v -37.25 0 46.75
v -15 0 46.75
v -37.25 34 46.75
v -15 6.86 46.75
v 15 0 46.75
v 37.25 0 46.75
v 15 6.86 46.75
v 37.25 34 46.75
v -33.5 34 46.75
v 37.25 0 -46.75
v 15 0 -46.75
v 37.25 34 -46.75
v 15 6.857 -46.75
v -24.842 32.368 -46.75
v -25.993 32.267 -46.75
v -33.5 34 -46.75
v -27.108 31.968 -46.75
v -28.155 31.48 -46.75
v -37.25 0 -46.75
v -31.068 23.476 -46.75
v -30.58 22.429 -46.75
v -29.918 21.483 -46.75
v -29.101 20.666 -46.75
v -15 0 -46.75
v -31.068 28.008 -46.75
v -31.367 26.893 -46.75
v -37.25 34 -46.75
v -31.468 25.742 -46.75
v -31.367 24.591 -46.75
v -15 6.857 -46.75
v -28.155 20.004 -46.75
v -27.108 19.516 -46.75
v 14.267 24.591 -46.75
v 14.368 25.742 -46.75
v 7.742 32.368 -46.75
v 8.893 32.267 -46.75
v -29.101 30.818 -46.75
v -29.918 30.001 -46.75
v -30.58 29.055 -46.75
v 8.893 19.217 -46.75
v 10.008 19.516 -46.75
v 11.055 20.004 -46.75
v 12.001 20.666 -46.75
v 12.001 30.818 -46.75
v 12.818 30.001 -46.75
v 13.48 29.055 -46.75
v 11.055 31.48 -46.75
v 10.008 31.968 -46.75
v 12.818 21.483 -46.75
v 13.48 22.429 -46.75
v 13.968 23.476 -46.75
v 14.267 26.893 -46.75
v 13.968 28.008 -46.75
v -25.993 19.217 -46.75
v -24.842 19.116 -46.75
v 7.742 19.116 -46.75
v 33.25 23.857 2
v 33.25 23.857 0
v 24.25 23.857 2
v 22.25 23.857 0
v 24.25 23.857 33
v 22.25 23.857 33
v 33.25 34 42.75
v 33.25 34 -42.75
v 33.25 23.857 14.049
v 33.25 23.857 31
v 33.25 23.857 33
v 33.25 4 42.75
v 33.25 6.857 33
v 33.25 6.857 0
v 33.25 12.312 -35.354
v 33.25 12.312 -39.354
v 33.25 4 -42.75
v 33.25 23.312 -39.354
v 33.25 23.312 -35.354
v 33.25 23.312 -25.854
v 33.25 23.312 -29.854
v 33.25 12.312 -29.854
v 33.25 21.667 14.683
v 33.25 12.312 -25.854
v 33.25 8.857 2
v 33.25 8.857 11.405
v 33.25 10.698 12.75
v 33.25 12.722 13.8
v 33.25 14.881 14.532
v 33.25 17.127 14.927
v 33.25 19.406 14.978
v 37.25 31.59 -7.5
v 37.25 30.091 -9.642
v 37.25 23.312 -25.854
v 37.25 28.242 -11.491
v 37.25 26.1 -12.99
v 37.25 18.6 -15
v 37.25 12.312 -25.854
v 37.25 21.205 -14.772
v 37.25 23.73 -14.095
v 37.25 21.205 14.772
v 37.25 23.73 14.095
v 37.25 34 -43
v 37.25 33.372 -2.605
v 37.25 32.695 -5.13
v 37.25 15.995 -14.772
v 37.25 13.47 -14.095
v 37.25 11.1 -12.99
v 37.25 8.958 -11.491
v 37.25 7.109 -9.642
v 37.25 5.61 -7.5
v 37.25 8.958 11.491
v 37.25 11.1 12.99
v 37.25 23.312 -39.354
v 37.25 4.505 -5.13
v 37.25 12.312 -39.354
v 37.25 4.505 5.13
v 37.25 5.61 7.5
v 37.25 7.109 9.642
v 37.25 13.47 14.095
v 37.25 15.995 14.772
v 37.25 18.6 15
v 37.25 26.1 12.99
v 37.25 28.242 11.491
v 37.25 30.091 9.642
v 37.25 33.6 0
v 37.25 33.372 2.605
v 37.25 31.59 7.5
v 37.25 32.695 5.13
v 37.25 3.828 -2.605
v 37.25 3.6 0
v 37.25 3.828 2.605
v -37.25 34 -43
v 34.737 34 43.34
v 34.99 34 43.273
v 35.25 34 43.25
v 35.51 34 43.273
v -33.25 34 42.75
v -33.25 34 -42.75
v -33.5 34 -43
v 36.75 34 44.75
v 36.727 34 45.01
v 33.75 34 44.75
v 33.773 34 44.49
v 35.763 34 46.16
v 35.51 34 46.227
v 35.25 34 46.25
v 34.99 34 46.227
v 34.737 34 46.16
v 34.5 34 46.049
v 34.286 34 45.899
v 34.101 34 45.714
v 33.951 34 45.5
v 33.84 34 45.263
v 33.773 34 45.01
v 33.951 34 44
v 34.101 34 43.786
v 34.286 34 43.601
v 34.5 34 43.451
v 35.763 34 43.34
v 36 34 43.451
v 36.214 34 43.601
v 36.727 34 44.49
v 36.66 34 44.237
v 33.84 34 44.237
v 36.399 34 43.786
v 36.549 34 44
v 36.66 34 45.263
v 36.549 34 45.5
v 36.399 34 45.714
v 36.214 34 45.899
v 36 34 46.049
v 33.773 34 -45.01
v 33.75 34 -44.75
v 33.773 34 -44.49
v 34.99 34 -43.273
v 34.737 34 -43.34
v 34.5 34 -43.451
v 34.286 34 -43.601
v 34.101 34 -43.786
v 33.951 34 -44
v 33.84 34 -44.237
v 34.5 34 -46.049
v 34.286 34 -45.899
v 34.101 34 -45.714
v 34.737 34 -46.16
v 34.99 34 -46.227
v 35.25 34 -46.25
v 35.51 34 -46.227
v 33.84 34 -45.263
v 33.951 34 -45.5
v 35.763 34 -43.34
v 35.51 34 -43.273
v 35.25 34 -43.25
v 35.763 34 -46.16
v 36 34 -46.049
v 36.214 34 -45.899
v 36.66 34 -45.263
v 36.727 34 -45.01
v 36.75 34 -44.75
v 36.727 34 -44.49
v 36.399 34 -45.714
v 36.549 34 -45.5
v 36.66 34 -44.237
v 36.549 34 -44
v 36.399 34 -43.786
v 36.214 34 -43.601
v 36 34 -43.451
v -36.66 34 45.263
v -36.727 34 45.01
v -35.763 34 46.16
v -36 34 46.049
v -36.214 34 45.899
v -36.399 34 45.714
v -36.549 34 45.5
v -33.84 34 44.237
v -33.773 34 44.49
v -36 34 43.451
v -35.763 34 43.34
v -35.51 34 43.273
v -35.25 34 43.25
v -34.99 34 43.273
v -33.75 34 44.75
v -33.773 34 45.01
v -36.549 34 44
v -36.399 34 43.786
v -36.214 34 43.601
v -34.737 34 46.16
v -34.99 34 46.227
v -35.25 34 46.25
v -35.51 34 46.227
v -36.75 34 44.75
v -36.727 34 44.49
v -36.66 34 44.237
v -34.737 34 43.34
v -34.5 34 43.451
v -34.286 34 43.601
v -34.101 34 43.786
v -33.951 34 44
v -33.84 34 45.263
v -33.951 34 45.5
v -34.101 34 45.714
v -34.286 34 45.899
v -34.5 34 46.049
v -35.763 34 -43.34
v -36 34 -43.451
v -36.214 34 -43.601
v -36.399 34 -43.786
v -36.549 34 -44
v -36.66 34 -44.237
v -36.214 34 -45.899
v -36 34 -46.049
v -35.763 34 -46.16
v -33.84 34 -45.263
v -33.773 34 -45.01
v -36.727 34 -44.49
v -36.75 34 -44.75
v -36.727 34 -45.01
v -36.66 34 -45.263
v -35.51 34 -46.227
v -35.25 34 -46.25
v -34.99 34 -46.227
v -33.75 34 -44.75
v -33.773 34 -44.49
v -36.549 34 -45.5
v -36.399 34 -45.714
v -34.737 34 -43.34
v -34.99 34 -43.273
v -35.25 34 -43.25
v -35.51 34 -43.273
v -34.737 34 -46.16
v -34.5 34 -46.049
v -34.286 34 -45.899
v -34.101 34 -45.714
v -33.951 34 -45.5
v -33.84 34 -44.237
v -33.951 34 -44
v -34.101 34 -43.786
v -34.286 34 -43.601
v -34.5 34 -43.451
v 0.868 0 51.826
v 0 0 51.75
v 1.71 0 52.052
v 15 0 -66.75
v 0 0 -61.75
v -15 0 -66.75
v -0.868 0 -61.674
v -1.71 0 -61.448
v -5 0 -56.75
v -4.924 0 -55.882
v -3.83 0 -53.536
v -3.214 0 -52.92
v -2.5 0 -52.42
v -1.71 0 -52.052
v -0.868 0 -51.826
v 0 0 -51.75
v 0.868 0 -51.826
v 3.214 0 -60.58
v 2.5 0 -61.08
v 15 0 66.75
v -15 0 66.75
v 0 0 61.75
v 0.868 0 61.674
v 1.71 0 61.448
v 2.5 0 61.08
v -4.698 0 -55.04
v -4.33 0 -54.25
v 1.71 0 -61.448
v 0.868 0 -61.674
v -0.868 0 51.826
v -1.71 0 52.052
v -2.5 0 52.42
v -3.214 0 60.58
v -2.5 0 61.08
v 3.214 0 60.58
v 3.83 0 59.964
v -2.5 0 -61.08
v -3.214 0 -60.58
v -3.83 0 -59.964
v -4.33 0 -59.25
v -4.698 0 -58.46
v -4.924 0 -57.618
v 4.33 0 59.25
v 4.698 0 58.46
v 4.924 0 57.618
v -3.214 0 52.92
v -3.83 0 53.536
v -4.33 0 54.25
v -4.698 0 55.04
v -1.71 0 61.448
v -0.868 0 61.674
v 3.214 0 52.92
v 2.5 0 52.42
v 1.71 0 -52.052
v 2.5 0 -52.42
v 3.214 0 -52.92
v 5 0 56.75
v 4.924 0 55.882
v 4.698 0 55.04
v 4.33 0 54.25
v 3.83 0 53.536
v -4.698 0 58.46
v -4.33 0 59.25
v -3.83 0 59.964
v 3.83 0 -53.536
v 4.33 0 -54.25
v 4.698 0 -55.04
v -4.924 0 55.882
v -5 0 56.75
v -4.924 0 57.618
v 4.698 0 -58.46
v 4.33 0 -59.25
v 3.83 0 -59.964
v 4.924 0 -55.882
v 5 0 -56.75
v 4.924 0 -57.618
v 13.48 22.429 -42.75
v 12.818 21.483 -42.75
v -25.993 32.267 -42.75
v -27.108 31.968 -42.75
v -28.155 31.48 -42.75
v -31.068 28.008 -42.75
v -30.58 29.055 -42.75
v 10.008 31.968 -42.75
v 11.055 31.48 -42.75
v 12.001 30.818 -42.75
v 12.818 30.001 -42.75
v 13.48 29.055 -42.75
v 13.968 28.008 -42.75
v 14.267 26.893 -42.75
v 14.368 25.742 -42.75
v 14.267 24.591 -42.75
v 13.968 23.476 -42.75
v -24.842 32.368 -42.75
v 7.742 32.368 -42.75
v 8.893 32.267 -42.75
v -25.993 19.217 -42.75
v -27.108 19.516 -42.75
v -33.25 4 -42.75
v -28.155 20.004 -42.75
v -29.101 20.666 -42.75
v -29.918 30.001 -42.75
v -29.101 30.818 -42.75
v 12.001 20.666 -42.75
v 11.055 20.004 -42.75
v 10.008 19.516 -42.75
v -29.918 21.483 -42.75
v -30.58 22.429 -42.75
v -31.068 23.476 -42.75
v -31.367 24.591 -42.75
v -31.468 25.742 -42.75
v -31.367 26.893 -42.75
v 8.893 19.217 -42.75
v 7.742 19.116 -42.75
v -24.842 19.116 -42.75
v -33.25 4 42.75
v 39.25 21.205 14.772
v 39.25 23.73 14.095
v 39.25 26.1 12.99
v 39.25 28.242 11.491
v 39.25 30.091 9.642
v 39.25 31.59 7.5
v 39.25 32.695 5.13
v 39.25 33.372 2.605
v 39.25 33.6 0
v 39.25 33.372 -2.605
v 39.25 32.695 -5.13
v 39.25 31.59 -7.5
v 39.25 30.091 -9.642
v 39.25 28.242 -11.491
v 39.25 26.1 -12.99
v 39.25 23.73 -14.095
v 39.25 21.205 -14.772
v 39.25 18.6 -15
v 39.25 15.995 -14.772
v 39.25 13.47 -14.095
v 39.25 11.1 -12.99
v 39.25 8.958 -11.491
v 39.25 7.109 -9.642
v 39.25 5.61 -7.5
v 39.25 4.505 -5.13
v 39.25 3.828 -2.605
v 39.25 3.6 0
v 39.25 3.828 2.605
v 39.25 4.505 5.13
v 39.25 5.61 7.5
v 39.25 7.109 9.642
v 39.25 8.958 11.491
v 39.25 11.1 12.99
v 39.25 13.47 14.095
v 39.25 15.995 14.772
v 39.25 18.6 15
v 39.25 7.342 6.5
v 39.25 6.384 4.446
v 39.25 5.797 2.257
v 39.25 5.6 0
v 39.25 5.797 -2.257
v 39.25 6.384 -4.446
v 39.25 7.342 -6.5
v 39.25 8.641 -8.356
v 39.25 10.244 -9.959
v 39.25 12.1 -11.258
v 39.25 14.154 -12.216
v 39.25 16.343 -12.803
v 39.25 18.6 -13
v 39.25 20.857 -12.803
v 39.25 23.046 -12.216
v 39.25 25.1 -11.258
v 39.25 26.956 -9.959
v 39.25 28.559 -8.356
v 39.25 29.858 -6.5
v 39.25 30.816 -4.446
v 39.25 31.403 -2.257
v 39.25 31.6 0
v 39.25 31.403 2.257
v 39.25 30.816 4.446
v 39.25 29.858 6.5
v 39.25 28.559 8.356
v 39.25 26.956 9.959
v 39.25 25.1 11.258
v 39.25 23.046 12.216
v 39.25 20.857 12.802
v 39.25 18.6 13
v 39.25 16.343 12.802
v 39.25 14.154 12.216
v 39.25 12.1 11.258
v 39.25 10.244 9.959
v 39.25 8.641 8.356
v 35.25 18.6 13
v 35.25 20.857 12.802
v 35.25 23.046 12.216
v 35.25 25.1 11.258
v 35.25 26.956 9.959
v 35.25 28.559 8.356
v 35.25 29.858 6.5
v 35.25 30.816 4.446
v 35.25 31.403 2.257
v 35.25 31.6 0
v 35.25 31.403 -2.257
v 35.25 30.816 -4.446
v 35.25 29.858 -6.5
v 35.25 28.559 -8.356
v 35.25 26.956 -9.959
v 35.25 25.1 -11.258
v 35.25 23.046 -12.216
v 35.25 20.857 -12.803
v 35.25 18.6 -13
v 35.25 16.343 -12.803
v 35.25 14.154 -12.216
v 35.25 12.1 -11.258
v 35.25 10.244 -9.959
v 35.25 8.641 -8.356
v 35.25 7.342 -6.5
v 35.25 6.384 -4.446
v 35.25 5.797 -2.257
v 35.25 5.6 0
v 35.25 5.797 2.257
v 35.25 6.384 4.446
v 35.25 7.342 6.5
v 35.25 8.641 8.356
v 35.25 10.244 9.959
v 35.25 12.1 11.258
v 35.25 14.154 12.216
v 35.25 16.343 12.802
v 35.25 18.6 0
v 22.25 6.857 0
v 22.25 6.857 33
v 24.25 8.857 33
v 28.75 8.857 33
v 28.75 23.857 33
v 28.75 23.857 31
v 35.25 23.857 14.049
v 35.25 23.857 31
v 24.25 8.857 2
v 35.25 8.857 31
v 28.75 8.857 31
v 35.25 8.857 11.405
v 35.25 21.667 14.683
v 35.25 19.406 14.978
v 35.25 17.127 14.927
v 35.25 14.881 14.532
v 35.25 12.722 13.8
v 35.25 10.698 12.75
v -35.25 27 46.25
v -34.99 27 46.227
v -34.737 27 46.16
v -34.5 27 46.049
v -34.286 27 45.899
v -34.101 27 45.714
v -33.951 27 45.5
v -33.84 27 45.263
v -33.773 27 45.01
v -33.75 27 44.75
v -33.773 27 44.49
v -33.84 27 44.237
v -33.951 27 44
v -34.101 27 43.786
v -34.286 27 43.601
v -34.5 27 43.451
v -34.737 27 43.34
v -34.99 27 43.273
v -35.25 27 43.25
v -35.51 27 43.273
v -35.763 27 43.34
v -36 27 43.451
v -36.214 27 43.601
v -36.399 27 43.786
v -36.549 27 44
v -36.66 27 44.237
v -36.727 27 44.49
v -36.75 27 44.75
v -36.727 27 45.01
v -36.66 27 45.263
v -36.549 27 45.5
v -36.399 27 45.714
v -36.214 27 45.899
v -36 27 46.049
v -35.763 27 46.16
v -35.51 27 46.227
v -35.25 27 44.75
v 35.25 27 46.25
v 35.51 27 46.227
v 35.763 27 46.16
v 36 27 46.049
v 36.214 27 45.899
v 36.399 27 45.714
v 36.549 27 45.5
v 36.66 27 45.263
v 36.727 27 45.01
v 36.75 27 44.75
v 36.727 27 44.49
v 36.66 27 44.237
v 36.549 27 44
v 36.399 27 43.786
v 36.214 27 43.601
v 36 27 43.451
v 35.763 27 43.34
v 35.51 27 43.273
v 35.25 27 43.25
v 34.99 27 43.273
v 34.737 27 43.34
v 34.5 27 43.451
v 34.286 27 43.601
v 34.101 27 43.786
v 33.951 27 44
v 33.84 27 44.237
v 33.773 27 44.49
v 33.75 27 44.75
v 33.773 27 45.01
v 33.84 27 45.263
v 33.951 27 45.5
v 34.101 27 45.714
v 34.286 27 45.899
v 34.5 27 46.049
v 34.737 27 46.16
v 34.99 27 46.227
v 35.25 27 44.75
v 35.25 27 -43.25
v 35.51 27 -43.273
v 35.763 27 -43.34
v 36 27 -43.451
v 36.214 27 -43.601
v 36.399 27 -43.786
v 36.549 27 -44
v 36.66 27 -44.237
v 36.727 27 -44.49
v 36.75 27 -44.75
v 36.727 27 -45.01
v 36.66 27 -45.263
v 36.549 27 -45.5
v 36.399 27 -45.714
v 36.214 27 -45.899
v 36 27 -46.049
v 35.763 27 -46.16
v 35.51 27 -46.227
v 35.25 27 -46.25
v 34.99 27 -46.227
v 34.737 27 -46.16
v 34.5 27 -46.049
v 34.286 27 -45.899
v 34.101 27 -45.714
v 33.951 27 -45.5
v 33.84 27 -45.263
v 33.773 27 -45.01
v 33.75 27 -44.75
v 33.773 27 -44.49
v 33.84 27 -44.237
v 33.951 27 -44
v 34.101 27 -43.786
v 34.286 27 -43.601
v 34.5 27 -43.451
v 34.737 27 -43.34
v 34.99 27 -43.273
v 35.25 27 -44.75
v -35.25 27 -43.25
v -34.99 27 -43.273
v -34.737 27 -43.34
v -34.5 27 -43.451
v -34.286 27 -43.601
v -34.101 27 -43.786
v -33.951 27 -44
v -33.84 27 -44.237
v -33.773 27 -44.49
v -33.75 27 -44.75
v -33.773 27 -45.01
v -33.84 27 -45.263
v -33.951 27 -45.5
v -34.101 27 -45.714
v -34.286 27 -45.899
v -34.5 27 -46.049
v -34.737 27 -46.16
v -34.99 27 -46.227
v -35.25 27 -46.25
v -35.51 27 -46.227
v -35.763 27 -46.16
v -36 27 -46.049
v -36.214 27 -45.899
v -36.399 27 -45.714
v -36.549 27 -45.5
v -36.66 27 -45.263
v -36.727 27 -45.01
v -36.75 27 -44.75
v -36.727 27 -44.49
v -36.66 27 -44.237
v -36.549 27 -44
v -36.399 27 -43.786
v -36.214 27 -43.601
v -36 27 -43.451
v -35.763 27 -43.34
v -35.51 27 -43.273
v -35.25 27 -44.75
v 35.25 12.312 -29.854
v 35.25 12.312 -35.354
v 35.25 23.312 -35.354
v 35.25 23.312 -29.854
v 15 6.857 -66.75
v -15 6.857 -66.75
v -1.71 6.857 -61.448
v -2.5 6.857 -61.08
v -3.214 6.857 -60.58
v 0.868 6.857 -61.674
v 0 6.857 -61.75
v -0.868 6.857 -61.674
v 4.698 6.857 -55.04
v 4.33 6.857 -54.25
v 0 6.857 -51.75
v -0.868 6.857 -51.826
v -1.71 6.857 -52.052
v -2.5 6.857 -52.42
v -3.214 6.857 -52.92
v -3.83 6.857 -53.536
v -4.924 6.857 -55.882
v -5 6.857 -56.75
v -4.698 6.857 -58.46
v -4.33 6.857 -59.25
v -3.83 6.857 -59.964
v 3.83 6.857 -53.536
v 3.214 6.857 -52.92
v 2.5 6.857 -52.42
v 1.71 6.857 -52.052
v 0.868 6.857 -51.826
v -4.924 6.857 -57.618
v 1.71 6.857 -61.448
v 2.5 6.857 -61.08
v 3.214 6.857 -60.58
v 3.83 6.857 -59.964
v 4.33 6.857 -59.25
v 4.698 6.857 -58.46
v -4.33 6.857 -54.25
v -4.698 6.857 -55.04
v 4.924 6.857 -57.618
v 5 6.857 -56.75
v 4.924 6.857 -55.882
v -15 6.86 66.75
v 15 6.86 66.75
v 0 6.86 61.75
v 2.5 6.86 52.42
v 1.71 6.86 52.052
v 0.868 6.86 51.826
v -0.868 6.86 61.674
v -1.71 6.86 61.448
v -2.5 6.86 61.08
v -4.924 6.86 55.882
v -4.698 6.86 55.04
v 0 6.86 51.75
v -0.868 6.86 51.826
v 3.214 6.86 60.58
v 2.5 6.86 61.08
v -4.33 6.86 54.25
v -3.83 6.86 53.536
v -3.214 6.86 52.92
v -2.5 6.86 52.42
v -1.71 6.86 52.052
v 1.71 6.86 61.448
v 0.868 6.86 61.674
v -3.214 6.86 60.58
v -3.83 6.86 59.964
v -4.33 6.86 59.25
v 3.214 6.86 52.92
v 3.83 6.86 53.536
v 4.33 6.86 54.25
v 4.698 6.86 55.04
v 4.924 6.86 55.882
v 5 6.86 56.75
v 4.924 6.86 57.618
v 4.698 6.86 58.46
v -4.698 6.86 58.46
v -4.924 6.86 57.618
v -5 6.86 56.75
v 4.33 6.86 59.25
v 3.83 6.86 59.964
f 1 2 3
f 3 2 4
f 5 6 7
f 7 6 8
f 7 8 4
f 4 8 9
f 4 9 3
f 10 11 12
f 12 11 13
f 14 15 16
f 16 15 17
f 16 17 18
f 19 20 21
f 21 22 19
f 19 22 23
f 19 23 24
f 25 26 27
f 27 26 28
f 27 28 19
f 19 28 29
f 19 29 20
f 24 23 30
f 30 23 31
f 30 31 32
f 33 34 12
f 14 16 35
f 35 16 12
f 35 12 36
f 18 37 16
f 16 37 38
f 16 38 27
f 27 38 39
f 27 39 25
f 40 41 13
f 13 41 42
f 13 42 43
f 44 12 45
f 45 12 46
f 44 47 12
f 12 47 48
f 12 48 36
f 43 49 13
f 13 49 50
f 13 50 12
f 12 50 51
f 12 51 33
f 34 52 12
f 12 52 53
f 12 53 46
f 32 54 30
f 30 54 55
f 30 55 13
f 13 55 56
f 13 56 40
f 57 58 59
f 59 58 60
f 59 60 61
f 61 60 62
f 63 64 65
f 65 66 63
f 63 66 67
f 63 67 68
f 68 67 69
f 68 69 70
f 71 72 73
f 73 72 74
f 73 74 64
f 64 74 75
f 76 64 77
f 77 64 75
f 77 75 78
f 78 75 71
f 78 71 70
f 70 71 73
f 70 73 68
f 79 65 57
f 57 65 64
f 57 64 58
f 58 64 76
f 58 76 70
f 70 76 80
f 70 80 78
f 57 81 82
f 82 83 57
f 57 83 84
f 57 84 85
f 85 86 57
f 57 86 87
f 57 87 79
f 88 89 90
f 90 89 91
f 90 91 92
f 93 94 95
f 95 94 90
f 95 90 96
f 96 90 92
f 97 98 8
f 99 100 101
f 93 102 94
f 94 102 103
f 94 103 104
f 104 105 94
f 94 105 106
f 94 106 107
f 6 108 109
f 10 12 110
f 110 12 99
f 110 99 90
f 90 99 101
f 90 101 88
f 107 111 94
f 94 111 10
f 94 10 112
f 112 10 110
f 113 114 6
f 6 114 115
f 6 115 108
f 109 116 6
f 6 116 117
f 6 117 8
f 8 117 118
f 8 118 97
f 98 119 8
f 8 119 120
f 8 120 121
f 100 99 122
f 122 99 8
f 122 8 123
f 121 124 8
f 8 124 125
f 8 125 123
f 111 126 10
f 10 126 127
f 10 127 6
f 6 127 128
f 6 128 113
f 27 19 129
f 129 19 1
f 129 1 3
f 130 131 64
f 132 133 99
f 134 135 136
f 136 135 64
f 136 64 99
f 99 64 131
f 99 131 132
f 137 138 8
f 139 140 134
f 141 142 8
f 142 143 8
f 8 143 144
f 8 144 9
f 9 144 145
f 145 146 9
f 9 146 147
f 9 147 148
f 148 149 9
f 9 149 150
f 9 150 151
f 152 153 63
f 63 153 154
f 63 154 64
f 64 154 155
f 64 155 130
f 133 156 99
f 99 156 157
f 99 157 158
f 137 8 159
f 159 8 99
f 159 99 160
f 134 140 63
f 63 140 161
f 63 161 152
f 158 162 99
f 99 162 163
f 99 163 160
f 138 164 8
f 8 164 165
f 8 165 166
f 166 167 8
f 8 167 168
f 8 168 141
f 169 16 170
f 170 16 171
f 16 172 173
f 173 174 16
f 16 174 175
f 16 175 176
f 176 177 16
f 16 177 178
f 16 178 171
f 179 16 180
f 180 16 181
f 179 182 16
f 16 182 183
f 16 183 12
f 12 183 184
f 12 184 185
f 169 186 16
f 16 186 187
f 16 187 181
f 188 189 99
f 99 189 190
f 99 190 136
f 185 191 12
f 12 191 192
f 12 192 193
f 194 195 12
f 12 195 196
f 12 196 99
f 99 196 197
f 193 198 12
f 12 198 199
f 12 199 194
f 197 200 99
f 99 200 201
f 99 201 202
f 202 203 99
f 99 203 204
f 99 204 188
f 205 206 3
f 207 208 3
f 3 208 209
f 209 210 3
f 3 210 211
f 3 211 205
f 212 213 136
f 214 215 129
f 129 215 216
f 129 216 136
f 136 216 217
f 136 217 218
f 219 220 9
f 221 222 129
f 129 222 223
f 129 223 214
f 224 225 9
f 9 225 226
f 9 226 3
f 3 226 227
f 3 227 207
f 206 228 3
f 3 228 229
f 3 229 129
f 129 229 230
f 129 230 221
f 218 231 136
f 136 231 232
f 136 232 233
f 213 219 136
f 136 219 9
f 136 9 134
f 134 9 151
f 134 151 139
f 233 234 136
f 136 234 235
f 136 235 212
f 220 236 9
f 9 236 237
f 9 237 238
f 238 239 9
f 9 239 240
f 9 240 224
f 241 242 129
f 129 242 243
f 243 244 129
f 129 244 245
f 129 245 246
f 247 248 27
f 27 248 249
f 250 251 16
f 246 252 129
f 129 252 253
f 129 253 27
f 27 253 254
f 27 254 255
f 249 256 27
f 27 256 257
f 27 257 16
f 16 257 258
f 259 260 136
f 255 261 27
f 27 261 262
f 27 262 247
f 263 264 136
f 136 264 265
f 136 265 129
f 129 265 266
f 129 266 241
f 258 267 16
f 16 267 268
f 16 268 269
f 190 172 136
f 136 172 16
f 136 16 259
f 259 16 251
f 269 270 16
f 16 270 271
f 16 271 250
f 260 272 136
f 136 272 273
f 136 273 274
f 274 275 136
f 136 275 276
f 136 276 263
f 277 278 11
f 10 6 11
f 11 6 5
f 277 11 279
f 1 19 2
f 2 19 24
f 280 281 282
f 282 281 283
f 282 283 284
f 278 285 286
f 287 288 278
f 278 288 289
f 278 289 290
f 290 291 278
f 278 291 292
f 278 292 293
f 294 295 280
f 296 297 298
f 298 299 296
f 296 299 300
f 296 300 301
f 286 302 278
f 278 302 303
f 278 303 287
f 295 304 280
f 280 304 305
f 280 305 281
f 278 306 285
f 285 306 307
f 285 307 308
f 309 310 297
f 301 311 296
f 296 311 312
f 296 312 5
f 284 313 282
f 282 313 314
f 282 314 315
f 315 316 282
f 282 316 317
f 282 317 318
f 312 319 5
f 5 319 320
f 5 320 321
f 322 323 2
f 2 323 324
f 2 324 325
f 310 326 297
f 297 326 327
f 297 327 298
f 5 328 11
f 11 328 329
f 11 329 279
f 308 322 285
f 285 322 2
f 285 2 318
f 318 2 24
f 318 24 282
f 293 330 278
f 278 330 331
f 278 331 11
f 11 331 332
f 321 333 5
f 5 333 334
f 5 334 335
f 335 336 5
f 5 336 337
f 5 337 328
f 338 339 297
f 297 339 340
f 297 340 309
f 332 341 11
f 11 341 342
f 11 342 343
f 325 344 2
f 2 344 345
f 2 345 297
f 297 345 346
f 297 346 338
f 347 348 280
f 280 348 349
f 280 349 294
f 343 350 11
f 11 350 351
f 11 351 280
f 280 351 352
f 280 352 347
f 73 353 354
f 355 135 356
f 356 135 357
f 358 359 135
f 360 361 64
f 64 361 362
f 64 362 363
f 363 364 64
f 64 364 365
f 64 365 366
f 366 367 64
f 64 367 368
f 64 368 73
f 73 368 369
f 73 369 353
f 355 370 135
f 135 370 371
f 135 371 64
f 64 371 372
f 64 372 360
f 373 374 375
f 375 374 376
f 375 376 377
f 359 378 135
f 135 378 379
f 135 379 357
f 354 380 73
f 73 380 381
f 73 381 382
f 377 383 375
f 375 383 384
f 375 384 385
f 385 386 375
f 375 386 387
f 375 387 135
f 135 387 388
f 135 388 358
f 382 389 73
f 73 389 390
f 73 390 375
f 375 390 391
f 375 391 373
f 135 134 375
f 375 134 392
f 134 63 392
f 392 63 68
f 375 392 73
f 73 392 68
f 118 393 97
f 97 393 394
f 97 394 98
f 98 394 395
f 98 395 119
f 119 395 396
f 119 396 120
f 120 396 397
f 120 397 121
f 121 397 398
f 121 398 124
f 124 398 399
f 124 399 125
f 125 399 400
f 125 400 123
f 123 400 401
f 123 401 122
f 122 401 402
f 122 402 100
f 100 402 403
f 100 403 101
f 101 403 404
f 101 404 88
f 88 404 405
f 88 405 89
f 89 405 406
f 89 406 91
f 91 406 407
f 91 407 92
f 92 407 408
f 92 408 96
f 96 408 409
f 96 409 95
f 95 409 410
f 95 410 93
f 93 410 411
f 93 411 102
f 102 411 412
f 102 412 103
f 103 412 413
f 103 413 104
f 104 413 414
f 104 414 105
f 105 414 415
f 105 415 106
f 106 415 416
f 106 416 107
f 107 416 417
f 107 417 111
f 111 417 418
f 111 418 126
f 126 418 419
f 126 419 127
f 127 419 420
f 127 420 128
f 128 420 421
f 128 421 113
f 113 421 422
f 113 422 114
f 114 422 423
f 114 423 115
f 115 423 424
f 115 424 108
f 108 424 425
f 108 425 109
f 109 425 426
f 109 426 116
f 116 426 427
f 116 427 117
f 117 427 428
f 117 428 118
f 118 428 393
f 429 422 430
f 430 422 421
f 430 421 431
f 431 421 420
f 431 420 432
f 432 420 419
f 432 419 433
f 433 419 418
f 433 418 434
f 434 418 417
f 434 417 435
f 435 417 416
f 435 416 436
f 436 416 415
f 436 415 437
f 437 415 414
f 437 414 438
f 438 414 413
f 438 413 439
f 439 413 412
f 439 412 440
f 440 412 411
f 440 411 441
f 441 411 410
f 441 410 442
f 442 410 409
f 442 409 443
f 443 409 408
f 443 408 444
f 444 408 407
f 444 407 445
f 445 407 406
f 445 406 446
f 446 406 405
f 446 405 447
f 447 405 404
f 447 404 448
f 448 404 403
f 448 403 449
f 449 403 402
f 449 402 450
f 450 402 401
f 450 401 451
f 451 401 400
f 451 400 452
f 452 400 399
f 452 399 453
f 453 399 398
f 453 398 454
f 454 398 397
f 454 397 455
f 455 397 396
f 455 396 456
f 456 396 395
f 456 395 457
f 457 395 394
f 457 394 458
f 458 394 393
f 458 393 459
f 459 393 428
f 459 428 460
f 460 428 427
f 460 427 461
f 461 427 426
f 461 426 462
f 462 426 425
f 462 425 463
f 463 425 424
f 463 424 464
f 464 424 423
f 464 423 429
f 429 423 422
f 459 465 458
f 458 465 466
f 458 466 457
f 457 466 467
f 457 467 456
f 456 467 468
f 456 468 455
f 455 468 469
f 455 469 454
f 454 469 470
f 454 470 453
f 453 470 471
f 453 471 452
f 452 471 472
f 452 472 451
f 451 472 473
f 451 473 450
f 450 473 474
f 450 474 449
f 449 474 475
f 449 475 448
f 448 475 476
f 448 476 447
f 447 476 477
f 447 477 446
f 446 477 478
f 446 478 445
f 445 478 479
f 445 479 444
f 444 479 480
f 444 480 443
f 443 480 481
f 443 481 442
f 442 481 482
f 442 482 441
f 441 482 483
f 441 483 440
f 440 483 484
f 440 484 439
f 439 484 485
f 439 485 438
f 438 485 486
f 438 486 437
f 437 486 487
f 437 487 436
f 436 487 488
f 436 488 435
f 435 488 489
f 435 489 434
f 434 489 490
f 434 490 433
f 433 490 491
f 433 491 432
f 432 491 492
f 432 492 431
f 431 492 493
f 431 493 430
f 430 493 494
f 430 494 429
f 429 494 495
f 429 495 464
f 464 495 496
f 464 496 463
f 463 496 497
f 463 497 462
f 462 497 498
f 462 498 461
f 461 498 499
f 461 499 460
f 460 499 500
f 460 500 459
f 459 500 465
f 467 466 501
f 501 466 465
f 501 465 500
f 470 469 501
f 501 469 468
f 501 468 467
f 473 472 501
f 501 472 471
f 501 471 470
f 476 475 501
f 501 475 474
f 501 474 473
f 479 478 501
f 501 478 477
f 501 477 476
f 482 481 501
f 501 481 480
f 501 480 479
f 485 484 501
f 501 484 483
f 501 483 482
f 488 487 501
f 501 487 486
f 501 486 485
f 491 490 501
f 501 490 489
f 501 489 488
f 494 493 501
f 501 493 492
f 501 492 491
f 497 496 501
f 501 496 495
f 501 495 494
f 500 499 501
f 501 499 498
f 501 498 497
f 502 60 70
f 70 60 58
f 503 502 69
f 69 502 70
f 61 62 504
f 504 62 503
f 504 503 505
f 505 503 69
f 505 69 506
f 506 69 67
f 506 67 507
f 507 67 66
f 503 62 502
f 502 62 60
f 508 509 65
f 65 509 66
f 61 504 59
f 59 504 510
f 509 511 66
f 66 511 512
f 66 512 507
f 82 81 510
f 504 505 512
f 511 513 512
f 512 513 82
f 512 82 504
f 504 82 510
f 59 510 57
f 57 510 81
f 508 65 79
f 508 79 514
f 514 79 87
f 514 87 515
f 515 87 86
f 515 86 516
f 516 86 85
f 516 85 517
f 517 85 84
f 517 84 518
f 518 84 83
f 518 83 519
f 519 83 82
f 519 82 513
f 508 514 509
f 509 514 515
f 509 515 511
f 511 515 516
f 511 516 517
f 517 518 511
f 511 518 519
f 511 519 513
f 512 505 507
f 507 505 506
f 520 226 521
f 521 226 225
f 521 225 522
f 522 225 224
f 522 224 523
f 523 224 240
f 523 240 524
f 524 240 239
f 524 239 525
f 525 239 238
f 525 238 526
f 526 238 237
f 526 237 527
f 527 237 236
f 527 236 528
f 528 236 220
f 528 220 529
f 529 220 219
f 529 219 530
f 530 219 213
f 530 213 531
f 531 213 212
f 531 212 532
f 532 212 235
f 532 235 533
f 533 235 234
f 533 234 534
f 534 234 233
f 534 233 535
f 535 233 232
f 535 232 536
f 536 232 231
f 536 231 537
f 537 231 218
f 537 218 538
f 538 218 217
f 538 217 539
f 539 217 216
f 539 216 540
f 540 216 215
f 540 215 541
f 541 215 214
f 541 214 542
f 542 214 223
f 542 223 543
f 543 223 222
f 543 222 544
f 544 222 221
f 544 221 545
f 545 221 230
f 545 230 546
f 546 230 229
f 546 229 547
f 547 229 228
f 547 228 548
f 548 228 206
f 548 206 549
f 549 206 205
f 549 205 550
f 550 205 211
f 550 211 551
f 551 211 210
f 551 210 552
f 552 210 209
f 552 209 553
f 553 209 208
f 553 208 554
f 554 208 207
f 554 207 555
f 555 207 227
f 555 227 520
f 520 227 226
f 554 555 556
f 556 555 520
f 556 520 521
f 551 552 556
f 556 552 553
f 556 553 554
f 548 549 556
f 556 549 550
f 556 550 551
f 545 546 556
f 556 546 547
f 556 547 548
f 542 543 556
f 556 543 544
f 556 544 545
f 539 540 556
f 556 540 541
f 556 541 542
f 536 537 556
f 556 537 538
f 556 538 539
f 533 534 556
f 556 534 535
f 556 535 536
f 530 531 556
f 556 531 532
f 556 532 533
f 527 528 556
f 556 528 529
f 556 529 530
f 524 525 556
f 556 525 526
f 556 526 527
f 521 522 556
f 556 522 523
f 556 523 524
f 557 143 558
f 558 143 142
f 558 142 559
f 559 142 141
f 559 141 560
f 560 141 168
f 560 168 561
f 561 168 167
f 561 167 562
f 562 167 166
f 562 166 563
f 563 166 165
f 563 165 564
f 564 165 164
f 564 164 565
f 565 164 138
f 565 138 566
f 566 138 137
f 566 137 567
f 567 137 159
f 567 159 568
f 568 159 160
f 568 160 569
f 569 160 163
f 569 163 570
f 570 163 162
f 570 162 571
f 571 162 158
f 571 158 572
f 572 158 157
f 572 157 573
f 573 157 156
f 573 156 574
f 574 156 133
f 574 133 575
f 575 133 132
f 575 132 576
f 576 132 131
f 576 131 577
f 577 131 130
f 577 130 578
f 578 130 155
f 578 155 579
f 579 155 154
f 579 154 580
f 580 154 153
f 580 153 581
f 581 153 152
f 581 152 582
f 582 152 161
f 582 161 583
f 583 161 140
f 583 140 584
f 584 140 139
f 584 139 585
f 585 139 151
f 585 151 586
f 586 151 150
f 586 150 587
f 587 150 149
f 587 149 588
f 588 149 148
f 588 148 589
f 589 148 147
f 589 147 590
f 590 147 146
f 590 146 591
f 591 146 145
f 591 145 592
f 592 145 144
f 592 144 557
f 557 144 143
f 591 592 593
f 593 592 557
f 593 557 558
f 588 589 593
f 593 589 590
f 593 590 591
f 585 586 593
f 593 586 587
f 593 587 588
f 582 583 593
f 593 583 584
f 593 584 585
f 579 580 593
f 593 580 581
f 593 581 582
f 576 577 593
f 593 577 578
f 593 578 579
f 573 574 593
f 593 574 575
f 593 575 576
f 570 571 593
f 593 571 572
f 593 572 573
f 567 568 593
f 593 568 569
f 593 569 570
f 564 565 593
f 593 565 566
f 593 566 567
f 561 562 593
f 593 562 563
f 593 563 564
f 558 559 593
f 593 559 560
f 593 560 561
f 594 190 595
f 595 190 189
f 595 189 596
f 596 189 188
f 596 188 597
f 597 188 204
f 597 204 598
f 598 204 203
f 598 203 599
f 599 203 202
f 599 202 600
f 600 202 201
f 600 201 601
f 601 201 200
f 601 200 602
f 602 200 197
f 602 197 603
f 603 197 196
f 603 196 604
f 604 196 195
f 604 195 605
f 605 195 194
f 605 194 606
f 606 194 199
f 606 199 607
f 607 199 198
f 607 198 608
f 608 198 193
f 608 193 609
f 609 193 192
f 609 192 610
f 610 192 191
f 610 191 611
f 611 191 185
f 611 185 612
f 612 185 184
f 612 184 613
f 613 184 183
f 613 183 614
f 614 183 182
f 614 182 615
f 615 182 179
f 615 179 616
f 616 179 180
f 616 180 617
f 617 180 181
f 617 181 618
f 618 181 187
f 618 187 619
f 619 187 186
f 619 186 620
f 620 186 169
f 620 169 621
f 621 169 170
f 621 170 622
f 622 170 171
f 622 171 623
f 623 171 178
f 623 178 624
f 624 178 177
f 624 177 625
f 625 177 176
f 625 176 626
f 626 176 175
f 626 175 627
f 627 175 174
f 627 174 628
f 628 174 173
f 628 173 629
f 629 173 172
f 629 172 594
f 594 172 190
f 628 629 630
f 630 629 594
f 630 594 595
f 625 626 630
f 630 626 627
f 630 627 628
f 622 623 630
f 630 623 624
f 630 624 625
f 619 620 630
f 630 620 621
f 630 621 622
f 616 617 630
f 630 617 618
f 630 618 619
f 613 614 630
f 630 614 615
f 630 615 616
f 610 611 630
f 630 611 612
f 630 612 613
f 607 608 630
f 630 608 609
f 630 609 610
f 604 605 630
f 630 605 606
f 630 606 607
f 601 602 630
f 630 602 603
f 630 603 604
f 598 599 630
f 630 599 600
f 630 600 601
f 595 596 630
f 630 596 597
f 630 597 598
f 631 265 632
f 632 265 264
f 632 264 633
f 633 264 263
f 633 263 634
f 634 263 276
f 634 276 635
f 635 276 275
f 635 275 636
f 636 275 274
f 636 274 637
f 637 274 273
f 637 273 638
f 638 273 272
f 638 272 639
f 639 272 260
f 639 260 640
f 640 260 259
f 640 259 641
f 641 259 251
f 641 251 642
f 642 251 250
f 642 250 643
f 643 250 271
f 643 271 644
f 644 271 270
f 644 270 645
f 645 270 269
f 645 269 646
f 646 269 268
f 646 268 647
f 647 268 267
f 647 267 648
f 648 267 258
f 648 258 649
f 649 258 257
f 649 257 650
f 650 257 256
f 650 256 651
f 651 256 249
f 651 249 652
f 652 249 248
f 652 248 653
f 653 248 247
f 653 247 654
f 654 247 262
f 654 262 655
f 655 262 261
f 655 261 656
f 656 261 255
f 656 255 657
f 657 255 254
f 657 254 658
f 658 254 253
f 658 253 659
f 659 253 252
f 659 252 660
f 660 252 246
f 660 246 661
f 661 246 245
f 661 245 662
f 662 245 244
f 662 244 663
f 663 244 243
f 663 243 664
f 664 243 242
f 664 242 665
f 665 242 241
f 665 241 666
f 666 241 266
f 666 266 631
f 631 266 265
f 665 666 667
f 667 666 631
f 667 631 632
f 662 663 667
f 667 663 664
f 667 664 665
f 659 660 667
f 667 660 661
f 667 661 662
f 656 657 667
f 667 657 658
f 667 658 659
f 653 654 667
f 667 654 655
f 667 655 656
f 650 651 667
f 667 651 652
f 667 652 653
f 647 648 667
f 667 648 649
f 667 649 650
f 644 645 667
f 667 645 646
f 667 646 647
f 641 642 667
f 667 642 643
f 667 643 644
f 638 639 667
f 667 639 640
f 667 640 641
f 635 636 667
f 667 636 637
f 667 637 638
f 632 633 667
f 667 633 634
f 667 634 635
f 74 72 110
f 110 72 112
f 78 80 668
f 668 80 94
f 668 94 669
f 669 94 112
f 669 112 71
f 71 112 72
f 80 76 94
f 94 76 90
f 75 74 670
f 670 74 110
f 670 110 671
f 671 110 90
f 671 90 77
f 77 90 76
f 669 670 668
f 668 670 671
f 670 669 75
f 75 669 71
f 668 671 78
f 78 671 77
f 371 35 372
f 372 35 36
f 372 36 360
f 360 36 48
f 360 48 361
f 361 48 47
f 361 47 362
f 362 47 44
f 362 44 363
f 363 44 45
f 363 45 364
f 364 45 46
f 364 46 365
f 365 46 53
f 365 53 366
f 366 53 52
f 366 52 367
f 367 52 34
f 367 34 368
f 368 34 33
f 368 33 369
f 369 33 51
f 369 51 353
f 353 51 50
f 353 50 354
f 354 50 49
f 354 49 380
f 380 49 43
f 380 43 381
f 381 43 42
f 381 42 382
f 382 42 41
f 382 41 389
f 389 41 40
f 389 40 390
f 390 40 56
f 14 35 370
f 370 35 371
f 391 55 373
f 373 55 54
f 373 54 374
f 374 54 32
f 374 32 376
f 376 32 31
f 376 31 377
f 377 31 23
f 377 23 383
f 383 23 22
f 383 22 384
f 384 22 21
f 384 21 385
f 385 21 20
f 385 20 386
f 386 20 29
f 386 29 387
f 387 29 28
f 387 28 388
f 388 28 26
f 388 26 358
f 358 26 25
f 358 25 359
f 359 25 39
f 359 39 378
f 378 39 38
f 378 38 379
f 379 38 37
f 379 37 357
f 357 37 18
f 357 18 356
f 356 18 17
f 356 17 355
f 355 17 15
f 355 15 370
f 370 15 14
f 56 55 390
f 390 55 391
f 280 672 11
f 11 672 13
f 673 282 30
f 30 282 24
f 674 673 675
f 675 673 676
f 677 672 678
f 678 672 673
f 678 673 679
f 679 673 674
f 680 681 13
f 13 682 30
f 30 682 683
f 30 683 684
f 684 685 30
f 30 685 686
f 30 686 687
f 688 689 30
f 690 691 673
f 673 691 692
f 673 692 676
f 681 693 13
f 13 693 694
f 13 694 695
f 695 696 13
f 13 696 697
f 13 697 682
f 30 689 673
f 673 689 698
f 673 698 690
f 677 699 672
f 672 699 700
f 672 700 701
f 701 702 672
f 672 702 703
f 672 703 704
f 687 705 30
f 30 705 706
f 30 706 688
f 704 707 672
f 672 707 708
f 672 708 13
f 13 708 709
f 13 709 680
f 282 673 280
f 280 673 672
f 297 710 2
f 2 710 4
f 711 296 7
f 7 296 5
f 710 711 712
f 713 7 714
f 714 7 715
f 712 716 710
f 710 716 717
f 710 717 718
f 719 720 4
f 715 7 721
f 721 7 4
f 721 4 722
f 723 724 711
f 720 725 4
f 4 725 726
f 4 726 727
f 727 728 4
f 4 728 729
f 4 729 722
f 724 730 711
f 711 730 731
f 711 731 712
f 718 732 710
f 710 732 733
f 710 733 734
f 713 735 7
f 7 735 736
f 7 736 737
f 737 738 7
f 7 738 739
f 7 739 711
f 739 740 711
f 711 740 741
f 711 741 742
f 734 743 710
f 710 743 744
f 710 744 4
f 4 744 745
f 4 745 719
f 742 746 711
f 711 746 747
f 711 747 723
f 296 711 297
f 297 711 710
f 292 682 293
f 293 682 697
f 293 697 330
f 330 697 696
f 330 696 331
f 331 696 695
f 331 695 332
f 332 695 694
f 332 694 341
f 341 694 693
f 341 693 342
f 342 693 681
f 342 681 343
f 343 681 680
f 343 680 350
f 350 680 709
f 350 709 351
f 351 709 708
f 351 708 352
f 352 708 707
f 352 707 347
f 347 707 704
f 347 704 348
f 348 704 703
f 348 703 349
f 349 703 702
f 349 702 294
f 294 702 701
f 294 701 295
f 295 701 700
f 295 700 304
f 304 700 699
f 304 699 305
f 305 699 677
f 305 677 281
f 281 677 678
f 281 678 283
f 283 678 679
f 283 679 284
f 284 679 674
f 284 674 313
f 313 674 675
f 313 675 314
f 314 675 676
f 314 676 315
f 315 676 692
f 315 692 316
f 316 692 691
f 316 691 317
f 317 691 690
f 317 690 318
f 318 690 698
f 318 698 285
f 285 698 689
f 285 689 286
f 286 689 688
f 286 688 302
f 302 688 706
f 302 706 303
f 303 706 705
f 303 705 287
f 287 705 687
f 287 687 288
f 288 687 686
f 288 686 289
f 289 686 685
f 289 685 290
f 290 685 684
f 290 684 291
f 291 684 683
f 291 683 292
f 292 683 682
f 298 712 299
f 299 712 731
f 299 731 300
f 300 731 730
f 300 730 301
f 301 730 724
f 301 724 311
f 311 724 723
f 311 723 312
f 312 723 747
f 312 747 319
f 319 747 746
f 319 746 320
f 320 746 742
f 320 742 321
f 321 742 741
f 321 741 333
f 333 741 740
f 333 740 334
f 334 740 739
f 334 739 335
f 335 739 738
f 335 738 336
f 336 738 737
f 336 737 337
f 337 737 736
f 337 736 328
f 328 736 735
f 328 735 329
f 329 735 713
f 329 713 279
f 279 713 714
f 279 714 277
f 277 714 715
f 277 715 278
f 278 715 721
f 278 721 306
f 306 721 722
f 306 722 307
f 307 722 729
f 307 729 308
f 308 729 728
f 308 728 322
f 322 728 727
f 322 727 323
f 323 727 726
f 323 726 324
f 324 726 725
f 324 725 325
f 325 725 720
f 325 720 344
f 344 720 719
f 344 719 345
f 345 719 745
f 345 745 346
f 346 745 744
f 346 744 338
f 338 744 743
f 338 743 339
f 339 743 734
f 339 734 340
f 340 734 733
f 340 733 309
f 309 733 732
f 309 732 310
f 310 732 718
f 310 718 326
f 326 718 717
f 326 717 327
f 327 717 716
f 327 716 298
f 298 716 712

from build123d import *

# Parameters (mm, degrees)
SKETCH2_W           = 74.5
SKETCH2_H           = 93.5
BOSS_EXTRUDE1_DEPTH = 34
SHELL1_T            = -4
SKETCH4_R           = 15
BOSS_EXTRUDE2_DEPTH = 2
SHELL2_START        = 35.25
SHELL2_OUTLINE_R    = 13
SHELL2_DEPTH        = 4
SKETCH5_W           = 33
SKETCH5_H           = 17
BOSS_EXTRUDE3_DEPTH = 11
SHELL3_START        = 24.25
SHELL3_OUTLINE_W    = 15
SHELL3_OUTLINE_H    = 29
SHELL3_DEPTH        = 9
SHELL3_START_2      = 33.25
SHELL3_2_DEPTH      = 2
SKETCH8_W           = 4.5
SKETCH8_H           = 15
CUT_EXTRUDE1_DEPTH  = 7
SKETCH9_R           = 1.5
CUT_EXTRUDE3_DEPTH  = 7
SKETCH10_W          = 13.5
SKETCH10_H          = 11
CUT_EXTRUDE5_DEPTH  = 2
SKETCH11_W          = 4
SKETCH11_H          = 11
CUT_EXTRUDE6_DEPTH  = 12
CUT_EXTRUDE7_DEPTH  = 10
SKETCH13_W          = 30
SKETCH13_H          = 6.856904394
BOSS_EXTRUDE6_DEPTH = 20
SKETCH19_W          = 30
SKETCH19_H          = 6.86
BOSS_EXTRUDE7_DEPTH = 20
SKETCH20_R          = 5
CUT_EXTRUDE8_DEPTH  = 20
SKETCH21_R          = 5
CUT_EXTRUDE9_DEPTH  = 20


# Read off the part's stored shape, not the designer's step: Shell2, Shell3
with BuildPart() as part:
    # Sketch2 → Boss-Extrude1 (new body)
    with BuildSketch(Plane(origin=(0, 0, 0), x_dir=(1, 0, 0), z_dir=(0, 1, 0))):
        Rectangle(SKETCH2_W, SKETCH2_H)
    extrude(amount=BOSS_EXTRUDE1_DEPTH)

    # Shell1
    shell1_openings = [part.faces().sort_by_distance(p)[0] for p in [
        (0, 34, 0),
    ]]
    offset(amount=SHELL1_T, openings=shell1_openings, kind=Kind.INTERSECTION)

    # Sketch4 → Boss-Extrude2 (add)
    with BuildSketch(Plane(origin=(37.25, 0, 0), x_dir=(0, 0, -1), z_dir=(1, 0, 0))):
        with Locations((0, 18.6)):
            Circle(SKETCH4_R)
    extrude(amount=BOSS_EXTRUDE2_DEPTH)

    # Shell2 outline → Shell2 (cut)
    with BuildSketch(Plane.YZ.offset(SHELL2_START)):
        with Locations((18.6, 0)):
            Circle(SHELL2_OUTLINE_R)
    extrude(amount=SHELL2_DEPTH, mode=Mode.SUBTRACT)

    # Sketch5 → Boss-Extrude3 (add)
    with BuildSketch(Plane.ZY.offset(-33.25)):
        with Locations((16.5, 15.356904394)):
            Rectangle(SKETCH5_W, SKETCH5_H)
    extrude(amount=BOSS_EXTRUDE3_DEPTH)

    # Shell3 outline → Shell3 (cut)
    with BuildSketch(Plane.YZ.offset(SHELL3_START)):
        with Locations((16.356904394, 16.5)):
            Rectangle(SHELL3_OUTLINE_W, SHELL3_OUTLINE_H)
    extrude(amount=SHELL3_DEPTH, mode=Mode.SUBTRACT)

    # Shell3 2 outline → Shell3 2 (cut)
    with BuildSketch(Plane.YZ.offset(SHELL3_START_2)):
        with BuildLine():
            Line((8.856904394, 31), (8.856904394, 11.404915081))
            ThreePointArc((8.856904394, 11.404915081), (15.996381403, 14.77231093), (23.856904394, 14.048663858))
            Line((23.856904394, 14.048663858), (23.856904394, 31))
            Line((23.856904394, 31), (8.856904394, 31))
        make_face()
    extrude(amount=SHELL3_2_DEPTH, mode=Mode.SUBTRACT)

    # Sketch8 → Cut-Extrude1 (cut)
    with BuildSketch(Plane(origin=(0, 0, 31), x_dir=(-1, 0, 0), z_dir=(0, 0, -1))):
        with Locations((-26.5, 16.356904394)):
            Rectangle(SKETCH8_W, SKETCH8_H)
    extrude(amount=-CUT_EXTRUDE1_DEPTH, mode=Mode.SUBTRACT)

    # Sketch9 → Cut-Extrude3 (cut)
    with BuildSketch(Plane(origin=(0, 34, 0), x_dir=(1, 0, 0), z_dir=(0, 1, 0))):
        with Locations(Location((-35.25, -44.75, 0), (0, 0, 270))):
            Circle(SKETCH9_R)
        with Locations(Location((35.25, -44.75, 0), (0, 0, 270))):
            Circle(SKETCH9_R)
        with Locations(Location((35.25, 44.75, 0), (0, 0, 270))):
            Circle(SKETCH9_R)
        with Locations(Location((-35.25, 44.75, 0), (0, 0, 270))):
            Circle(SKETCH9_R)
    extrude(amount=-CUT_EXTRUDE3_DEPTH, mode=Mode.SUBTRACT)

    # Sketch10 → Cut-Extrude5 (cut)
    with BuildSketch(Plane(origin=(37.25, 0, 0), x_dir=(0, 0, -1), z_dir=(1, 0, 0))):
        with Locations((32.604466308, 17.811561776)):
            Rectangle(SKETCH10_W, SKETCH10_H)
    extrude(amount=-CUT_EXTRUDE5_DEPTH, mode=Mode.SUBTRACT)

    # Sketch11 → Cut-Extrude6 (cut)
    with BuildSketch(Plane(origin=(35.25, 0, 0), x_dir=(0, 0, -1), z_dir=(1, 0, 0))):
        with Locations((27.854466308, 17.811561776)):
            Rectangle(SKETCH11_W, SKETCH11_H)
        with Locations((37.354466308, 17.811561776)):
            Rectangle(SKETCH11_W, SKETCH11_H)
    extrude(amount=-CUT_EXTRUDE6_DEPTH, mode=Mode.SUBTRACT)

    # Sketch12 → Cut-Extrude7 (cut)
    with BuildSketch(Plane(origin=(0, 0, -46.75), x_dir=(-1, 0, 0), z_dir=(0, 0, -1))):
        with BuildLine():
            Line((-7.742051662, 32.367861053), (24.842051662, 32.367861053))
            ThreePointArc((24.842051662, 32.367861053), (31.467861053, 25.742051662), (24.842051662, 19.11624227))
            Line((24.842051662, 19.11624227), (-7.742051662, 19.11624227))
            ThreePointArc((-7.742051662, 19.11624227), (-14.367861053, 25.742051662), (-7.742051662, 32.367861053))
        make_face()
    extrude(amount=-CUT_EXTRUDE7_DEPTH, mode=Mode.SUBTRACT)

    # Sketch13 → Boss-Extrude6 (add)
    with BuildSketch(Plane(origin=(0, 0, -46.75), x_dir=(-1, 0, 0), z_dir=(0, 0, -1))):
        with Locations((0, 3.428452197)):
            Rectangle(SKETCH13_W, SKETCH13_H)
    extrude(amount=BOSS_EXTRUDE6_DEPTH)

    # Sketch19 → Boss-Extrude7 (add)
    with BuildSketch(Plane.XY.offset(46.75)):
        with Locations((0, 3.43)):
            Rectangle(SKETCH19_W, SKETCH19_H)
    extrude(amount=BOSS_EXTRUDE7_DEPTH)

    # Sketch20 → Cut-Extrude8 (cut)
    with BuildSketch(Plane(origin=(0, 6.856904394, 0), x_dir=(1, 0, 0), z_dir=(0, 1, 0))):
        with Locations(Location((0, 56.75, 0), (0, 0, 270))):
            Circle(SKETCH20_R)
    extrude(amount=-CUT_EXTRUDE8_DEPTH, mode=Mode.SUBTRACT)

    # Sketch21 → Cut-Extrude9 (cut)
    with BuildSketch(Plane(origin=(0, 6.86, 0), x_dir=(1, 0, 0), z_dir=(0, 1, 0))):
        with Locations(Location((0, -56.75, 0), (0, 0, 270))):
            Circle(SKETCH21_R)
    extrude(amount=-CUT_EXTRUDE9_DEPTH, mode=Mode.SUBTRACT)


solid = part.part
